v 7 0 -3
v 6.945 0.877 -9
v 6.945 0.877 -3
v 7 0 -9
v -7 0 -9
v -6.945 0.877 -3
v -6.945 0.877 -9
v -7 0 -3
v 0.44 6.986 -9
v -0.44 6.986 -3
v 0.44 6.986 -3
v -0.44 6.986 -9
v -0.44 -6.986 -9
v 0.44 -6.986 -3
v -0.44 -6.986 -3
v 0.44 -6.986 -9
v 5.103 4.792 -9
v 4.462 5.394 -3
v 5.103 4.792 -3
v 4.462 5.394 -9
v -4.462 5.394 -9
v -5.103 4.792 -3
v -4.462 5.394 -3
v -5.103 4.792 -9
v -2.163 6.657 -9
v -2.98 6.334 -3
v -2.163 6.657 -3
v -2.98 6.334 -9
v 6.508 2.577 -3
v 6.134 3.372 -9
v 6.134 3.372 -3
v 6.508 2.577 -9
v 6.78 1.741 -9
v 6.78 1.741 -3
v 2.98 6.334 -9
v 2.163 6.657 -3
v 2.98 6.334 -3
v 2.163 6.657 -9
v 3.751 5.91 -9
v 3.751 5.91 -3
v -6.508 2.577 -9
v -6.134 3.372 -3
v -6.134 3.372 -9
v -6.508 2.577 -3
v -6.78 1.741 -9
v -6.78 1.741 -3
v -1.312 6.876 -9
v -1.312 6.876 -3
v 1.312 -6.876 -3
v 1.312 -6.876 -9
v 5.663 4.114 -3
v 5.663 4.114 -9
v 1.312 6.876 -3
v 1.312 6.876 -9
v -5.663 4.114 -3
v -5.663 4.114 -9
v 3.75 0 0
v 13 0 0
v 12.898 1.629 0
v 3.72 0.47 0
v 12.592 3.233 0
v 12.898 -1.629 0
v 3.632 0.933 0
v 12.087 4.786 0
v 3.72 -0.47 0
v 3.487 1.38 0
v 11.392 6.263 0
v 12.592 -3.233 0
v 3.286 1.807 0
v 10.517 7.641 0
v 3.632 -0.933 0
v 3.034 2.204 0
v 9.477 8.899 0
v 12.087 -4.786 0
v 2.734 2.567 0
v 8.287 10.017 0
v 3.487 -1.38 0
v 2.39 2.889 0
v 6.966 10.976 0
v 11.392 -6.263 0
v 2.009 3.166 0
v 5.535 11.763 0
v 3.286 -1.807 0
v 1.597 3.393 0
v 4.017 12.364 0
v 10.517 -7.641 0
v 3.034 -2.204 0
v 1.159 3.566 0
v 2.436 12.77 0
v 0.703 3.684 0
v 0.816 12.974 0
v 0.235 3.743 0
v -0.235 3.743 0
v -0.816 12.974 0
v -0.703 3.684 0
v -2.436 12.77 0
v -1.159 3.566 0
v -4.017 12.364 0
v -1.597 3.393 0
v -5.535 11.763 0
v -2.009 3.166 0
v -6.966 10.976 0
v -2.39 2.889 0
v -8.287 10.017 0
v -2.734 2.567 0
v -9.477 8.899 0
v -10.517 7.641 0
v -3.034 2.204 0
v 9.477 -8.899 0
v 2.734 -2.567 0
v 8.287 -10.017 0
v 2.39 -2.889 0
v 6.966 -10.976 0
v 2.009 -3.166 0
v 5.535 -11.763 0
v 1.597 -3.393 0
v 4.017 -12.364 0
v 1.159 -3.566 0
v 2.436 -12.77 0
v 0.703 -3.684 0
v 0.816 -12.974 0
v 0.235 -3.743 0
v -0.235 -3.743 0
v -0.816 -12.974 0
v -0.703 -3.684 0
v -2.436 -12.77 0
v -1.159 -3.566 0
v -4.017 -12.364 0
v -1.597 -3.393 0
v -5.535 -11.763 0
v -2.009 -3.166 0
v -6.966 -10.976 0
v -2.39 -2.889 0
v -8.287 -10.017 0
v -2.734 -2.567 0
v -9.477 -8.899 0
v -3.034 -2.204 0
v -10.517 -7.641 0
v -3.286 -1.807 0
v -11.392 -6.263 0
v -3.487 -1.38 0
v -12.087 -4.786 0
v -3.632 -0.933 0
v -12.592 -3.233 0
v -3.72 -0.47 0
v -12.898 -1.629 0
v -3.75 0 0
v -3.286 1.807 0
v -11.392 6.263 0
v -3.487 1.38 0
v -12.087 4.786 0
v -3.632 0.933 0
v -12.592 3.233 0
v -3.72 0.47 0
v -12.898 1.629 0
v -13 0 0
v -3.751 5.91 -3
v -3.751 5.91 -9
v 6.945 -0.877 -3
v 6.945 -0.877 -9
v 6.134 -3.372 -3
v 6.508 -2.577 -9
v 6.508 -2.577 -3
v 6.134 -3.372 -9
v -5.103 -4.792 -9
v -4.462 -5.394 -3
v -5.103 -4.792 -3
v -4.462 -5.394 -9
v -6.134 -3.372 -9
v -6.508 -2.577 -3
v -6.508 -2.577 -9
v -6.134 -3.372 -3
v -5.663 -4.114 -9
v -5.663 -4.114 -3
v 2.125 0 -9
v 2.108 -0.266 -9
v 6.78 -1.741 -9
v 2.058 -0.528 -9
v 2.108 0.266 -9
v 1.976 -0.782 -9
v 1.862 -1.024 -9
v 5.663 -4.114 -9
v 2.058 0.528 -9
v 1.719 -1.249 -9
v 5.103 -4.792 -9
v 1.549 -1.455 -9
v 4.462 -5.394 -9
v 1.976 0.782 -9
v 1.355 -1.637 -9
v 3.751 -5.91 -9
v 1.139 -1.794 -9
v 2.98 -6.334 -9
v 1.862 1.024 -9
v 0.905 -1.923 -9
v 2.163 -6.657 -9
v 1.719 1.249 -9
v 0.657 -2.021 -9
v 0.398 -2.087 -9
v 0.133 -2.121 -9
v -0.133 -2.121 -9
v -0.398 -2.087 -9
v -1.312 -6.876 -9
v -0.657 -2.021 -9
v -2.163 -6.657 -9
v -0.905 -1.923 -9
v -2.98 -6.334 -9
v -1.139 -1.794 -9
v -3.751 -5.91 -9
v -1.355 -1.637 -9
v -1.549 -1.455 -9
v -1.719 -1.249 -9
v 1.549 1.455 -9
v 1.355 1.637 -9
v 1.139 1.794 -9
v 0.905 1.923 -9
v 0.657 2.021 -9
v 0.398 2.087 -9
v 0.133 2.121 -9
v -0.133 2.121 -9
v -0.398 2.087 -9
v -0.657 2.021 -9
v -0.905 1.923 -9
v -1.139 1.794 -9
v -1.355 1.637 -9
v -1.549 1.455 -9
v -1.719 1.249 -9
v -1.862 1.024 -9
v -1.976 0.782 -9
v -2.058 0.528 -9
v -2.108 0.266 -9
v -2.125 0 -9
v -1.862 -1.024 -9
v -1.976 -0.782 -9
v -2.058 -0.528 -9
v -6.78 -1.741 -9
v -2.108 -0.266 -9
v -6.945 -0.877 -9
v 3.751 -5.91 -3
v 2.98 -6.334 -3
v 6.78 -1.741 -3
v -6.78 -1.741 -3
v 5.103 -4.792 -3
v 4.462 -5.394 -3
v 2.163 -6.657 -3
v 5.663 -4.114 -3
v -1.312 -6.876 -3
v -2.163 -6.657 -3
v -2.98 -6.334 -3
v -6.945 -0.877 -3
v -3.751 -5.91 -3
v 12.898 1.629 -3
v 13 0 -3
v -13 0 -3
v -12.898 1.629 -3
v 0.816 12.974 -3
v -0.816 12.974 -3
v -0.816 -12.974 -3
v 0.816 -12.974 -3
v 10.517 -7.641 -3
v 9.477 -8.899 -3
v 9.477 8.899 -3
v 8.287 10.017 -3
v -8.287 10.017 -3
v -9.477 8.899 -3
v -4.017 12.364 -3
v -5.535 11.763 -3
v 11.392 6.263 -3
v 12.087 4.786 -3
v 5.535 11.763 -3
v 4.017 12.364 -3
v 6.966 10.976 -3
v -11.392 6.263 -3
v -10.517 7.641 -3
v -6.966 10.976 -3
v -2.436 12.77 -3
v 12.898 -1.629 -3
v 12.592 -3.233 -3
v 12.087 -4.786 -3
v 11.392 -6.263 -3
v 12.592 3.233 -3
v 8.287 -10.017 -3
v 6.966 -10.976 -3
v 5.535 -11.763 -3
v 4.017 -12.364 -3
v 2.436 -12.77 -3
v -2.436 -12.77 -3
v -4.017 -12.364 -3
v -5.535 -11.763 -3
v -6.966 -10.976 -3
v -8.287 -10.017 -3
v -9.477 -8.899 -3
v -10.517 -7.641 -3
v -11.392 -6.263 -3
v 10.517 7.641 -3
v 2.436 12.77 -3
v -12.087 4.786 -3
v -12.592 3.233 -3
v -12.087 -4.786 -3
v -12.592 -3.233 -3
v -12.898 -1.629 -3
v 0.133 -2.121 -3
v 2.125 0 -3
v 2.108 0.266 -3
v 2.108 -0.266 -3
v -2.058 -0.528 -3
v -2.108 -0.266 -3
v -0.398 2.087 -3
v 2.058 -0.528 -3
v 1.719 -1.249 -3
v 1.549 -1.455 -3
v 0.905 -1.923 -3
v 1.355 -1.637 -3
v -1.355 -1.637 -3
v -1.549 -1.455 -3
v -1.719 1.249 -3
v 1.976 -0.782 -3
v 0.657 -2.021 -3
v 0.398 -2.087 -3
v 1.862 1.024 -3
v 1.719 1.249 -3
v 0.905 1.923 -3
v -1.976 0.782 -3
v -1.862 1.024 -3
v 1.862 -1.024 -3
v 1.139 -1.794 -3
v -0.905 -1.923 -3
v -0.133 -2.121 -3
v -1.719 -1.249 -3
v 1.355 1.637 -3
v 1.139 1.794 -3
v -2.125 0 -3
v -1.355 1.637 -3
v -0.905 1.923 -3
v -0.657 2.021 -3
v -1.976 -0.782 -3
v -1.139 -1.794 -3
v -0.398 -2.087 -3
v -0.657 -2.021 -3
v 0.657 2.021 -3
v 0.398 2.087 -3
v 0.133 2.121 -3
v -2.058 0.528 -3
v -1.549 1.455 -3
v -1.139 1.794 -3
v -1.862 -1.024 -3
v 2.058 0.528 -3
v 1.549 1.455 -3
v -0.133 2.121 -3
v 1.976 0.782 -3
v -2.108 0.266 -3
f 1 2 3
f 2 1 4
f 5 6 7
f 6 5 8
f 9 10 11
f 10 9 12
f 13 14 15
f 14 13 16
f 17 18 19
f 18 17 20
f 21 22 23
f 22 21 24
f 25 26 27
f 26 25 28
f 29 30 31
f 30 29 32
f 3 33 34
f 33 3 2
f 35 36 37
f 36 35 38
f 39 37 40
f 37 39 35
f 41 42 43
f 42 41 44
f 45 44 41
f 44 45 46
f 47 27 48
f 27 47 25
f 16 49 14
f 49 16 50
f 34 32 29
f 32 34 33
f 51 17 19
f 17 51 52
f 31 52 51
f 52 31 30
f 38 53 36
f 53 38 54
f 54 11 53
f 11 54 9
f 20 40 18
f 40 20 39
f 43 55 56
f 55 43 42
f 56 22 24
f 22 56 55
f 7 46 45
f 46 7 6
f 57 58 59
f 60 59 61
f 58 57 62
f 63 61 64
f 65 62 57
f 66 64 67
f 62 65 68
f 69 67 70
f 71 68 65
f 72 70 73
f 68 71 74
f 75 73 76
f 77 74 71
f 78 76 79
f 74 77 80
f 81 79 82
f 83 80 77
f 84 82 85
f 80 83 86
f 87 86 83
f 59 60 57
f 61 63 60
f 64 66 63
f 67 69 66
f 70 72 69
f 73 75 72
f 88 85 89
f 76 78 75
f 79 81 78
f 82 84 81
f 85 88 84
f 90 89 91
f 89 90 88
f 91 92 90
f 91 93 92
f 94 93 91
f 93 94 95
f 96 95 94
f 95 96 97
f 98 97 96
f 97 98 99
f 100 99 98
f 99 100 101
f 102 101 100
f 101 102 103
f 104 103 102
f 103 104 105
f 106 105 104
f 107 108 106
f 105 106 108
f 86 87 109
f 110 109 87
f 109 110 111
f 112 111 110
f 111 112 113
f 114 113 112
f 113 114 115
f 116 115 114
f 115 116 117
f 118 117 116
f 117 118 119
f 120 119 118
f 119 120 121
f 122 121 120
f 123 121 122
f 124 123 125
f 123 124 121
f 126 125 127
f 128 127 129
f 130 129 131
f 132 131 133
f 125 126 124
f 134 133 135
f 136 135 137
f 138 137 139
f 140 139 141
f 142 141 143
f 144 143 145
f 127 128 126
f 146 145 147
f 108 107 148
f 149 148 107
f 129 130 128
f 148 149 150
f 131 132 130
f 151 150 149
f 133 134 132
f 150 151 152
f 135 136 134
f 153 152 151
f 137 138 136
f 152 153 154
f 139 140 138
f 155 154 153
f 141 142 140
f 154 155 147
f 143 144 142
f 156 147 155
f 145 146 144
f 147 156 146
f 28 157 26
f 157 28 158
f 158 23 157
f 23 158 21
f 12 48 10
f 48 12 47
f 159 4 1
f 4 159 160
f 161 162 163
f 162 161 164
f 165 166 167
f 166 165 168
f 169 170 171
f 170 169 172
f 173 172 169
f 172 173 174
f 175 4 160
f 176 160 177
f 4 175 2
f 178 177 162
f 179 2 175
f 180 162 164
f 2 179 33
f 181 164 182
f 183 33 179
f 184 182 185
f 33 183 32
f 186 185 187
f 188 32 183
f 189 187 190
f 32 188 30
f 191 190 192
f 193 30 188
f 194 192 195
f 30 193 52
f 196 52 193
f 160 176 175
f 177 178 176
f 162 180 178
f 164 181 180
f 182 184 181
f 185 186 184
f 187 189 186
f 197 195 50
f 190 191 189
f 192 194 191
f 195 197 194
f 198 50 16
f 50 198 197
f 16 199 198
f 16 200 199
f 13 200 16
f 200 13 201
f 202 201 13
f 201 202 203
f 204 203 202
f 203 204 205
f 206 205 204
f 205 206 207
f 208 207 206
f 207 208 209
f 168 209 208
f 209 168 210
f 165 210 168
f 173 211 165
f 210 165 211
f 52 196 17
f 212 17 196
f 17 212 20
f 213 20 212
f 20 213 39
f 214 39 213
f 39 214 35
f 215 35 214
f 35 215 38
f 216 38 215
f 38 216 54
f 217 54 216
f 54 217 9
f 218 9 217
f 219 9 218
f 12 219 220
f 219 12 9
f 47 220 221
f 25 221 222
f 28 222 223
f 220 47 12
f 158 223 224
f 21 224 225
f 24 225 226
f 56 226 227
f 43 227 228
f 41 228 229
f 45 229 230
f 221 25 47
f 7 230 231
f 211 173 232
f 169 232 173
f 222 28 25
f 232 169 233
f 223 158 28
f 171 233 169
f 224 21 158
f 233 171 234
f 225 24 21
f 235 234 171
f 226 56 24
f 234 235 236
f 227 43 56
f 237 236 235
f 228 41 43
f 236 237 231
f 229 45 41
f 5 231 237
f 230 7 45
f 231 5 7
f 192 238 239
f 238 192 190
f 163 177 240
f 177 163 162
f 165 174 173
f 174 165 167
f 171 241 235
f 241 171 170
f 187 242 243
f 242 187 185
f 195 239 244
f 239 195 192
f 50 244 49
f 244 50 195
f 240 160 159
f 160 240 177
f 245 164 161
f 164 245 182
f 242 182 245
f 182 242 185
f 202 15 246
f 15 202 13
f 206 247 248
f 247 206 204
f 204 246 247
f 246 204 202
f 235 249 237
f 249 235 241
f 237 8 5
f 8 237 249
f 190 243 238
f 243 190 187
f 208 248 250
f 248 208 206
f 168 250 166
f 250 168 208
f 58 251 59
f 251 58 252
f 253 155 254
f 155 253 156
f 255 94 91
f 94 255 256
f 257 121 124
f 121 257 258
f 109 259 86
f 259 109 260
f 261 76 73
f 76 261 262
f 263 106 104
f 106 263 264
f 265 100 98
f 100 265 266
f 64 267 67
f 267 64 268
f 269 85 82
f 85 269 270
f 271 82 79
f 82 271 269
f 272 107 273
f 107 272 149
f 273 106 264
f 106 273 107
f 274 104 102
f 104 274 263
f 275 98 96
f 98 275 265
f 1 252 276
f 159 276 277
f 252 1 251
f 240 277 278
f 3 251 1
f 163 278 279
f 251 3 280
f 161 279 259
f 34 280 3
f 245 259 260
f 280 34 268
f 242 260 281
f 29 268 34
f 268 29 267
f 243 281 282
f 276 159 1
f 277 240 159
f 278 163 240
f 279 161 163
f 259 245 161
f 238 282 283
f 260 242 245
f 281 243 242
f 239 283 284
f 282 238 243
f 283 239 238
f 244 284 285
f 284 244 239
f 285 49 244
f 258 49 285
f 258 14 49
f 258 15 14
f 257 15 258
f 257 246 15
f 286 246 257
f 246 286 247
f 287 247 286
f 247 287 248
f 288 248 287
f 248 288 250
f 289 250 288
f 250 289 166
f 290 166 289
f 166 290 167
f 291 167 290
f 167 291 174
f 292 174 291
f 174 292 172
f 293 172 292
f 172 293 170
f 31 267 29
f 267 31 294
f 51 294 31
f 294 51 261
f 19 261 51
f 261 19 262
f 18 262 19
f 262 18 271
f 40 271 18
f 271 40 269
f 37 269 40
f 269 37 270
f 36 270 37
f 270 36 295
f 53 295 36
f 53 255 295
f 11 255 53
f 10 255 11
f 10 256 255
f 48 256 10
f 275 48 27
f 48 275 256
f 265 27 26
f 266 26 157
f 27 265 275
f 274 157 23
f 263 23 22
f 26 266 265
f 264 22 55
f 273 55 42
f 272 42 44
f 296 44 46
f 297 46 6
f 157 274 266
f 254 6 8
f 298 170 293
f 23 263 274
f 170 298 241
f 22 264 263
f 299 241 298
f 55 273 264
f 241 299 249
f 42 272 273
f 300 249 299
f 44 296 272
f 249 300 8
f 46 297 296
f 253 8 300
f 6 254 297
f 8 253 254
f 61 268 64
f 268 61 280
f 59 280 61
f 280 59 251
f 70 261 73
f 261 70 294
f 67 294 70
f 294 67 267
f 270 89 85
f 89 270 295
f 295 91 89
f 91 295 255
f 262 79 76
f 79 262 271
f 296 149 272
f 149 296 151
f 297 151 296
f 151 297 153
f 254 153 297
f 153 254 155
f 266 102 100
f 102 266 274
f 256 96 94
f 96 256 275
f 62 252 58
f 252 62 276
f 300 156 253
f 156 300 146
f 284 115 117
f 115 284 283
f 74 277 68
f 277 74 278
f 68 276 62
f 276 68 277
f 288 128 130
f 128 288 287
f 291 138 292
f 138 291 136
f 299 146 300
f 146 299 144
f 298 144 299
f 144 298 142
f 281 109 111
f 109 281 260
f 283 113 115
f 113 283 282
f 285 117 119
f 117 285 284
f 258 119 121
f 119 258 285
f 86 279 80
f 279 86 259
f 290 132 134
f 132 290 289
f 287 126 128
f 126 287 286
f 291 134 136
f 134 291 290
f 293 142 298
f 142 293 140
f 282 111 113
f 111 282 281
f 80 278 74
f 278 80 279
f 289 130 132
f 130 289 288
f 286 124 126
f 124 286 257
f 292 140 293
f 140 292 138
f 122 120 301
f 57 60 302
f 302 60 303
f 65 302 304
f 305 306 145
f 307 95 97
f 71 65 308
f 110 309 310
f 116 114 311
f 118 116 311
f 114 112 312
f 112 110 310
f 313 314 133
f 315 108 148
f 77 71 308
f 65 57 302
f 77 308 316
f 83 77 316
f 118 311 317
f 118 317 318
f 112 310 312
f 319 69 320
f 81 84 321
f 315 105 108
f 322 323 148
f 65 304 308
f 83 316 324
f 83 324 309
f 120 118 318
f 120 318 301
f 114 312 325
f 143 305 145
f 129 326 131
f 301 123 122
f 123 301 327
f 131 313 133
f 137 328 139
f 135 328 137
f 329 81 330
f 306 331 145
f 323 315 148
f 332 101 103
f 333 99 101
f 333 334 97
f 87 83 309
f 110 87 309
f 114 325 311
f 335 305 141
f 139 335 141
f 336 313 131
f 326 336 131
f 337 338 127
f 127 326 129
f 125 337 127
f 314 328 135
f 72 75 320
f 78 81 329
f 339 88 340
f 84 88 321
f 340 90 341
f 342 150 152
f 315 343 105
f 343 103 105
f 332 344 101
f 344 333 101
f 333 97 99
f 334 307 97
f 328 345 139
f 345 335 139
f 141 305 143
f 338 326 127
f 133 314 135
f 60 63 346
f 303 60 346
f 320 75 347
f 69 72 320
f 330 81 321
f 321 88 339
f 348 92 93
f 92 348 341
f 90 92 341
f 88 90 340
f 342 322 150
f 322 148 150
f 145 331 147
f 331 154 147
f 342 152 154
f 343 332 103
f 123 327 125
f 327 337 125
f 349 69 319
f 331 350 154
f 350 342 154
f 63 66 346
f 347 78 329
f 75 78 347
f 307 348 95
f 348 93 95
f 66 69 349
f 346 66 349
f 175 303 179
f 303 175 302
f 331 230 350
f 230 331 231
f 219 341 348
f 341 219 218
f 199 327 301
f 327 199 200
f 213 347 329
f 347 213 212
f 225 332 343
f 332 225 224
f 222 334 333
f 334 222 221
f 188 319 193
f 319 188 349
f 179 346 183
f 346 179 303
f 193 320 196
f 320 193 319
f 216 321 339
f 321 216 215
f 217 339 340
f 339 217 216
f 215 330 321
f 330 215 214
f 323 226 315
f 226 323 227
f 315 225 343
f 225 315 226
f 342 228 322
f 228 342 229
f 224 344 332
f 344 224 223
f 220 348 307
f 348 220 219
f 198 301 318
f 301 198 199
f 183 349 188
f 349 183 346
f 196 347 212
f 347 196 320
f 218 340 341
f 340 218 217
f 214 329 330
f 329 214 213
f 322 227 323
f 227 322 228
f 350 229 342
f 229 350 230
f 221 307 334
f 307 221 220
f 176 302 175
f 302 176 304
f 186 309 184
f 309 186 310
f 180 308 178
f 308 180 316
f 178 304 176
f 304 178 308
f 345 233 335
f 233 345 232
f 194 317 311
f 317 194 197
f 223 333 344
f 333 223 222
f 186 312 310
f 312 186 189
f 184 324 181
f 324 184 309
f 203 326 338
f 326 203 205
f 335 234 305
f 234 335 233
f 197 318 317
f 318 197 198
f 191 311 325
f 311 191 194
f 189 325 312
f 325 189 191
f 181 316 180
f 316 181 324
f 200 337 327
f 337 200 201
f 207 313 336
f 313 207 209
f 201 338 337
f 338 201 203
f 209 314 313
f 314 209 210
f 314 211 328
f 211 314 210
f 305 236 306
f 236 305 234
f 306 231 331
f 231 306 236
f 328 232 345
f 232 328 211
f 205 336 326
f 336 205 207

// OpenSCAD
$fn = 50;


difference() {
	union() {
		translate(v = [0, 0, -9.0000000000]) {
			cylinder(h = 9, r = 7.0000000000);
		}
		translate(v = [0, 0, -3.0000000000]) {
			cylinder(h = 3, r = 13.0000000000);
		}
	}
	union() {
		translate(v = [0, 0, 0]) {
			rotate(a = [0, 0, 0]) {
				difference() {
					union() {
						#translate(v = [0, 0, -9.0000000000]) {
							cylinder(h = 9, r = 2.0000000000);
						}
						#translate(v = [0, 0, -3]) {
							cylinder(h = 3, r = 7.0000000000, r1 = 2.1250000000, r2 = 3.7500000000);
						}
						#translate(v = [0, 0, -9.0000000000]) {
							cylinder(h = 9, r = 2.1250000000);
						}
						#translate(v = [0, 0, -9.0000000000]) {
							cylinder(h = 9, r = 2.0000000000);
						}
					}
					union();
				}
			}
		}
	}
}
